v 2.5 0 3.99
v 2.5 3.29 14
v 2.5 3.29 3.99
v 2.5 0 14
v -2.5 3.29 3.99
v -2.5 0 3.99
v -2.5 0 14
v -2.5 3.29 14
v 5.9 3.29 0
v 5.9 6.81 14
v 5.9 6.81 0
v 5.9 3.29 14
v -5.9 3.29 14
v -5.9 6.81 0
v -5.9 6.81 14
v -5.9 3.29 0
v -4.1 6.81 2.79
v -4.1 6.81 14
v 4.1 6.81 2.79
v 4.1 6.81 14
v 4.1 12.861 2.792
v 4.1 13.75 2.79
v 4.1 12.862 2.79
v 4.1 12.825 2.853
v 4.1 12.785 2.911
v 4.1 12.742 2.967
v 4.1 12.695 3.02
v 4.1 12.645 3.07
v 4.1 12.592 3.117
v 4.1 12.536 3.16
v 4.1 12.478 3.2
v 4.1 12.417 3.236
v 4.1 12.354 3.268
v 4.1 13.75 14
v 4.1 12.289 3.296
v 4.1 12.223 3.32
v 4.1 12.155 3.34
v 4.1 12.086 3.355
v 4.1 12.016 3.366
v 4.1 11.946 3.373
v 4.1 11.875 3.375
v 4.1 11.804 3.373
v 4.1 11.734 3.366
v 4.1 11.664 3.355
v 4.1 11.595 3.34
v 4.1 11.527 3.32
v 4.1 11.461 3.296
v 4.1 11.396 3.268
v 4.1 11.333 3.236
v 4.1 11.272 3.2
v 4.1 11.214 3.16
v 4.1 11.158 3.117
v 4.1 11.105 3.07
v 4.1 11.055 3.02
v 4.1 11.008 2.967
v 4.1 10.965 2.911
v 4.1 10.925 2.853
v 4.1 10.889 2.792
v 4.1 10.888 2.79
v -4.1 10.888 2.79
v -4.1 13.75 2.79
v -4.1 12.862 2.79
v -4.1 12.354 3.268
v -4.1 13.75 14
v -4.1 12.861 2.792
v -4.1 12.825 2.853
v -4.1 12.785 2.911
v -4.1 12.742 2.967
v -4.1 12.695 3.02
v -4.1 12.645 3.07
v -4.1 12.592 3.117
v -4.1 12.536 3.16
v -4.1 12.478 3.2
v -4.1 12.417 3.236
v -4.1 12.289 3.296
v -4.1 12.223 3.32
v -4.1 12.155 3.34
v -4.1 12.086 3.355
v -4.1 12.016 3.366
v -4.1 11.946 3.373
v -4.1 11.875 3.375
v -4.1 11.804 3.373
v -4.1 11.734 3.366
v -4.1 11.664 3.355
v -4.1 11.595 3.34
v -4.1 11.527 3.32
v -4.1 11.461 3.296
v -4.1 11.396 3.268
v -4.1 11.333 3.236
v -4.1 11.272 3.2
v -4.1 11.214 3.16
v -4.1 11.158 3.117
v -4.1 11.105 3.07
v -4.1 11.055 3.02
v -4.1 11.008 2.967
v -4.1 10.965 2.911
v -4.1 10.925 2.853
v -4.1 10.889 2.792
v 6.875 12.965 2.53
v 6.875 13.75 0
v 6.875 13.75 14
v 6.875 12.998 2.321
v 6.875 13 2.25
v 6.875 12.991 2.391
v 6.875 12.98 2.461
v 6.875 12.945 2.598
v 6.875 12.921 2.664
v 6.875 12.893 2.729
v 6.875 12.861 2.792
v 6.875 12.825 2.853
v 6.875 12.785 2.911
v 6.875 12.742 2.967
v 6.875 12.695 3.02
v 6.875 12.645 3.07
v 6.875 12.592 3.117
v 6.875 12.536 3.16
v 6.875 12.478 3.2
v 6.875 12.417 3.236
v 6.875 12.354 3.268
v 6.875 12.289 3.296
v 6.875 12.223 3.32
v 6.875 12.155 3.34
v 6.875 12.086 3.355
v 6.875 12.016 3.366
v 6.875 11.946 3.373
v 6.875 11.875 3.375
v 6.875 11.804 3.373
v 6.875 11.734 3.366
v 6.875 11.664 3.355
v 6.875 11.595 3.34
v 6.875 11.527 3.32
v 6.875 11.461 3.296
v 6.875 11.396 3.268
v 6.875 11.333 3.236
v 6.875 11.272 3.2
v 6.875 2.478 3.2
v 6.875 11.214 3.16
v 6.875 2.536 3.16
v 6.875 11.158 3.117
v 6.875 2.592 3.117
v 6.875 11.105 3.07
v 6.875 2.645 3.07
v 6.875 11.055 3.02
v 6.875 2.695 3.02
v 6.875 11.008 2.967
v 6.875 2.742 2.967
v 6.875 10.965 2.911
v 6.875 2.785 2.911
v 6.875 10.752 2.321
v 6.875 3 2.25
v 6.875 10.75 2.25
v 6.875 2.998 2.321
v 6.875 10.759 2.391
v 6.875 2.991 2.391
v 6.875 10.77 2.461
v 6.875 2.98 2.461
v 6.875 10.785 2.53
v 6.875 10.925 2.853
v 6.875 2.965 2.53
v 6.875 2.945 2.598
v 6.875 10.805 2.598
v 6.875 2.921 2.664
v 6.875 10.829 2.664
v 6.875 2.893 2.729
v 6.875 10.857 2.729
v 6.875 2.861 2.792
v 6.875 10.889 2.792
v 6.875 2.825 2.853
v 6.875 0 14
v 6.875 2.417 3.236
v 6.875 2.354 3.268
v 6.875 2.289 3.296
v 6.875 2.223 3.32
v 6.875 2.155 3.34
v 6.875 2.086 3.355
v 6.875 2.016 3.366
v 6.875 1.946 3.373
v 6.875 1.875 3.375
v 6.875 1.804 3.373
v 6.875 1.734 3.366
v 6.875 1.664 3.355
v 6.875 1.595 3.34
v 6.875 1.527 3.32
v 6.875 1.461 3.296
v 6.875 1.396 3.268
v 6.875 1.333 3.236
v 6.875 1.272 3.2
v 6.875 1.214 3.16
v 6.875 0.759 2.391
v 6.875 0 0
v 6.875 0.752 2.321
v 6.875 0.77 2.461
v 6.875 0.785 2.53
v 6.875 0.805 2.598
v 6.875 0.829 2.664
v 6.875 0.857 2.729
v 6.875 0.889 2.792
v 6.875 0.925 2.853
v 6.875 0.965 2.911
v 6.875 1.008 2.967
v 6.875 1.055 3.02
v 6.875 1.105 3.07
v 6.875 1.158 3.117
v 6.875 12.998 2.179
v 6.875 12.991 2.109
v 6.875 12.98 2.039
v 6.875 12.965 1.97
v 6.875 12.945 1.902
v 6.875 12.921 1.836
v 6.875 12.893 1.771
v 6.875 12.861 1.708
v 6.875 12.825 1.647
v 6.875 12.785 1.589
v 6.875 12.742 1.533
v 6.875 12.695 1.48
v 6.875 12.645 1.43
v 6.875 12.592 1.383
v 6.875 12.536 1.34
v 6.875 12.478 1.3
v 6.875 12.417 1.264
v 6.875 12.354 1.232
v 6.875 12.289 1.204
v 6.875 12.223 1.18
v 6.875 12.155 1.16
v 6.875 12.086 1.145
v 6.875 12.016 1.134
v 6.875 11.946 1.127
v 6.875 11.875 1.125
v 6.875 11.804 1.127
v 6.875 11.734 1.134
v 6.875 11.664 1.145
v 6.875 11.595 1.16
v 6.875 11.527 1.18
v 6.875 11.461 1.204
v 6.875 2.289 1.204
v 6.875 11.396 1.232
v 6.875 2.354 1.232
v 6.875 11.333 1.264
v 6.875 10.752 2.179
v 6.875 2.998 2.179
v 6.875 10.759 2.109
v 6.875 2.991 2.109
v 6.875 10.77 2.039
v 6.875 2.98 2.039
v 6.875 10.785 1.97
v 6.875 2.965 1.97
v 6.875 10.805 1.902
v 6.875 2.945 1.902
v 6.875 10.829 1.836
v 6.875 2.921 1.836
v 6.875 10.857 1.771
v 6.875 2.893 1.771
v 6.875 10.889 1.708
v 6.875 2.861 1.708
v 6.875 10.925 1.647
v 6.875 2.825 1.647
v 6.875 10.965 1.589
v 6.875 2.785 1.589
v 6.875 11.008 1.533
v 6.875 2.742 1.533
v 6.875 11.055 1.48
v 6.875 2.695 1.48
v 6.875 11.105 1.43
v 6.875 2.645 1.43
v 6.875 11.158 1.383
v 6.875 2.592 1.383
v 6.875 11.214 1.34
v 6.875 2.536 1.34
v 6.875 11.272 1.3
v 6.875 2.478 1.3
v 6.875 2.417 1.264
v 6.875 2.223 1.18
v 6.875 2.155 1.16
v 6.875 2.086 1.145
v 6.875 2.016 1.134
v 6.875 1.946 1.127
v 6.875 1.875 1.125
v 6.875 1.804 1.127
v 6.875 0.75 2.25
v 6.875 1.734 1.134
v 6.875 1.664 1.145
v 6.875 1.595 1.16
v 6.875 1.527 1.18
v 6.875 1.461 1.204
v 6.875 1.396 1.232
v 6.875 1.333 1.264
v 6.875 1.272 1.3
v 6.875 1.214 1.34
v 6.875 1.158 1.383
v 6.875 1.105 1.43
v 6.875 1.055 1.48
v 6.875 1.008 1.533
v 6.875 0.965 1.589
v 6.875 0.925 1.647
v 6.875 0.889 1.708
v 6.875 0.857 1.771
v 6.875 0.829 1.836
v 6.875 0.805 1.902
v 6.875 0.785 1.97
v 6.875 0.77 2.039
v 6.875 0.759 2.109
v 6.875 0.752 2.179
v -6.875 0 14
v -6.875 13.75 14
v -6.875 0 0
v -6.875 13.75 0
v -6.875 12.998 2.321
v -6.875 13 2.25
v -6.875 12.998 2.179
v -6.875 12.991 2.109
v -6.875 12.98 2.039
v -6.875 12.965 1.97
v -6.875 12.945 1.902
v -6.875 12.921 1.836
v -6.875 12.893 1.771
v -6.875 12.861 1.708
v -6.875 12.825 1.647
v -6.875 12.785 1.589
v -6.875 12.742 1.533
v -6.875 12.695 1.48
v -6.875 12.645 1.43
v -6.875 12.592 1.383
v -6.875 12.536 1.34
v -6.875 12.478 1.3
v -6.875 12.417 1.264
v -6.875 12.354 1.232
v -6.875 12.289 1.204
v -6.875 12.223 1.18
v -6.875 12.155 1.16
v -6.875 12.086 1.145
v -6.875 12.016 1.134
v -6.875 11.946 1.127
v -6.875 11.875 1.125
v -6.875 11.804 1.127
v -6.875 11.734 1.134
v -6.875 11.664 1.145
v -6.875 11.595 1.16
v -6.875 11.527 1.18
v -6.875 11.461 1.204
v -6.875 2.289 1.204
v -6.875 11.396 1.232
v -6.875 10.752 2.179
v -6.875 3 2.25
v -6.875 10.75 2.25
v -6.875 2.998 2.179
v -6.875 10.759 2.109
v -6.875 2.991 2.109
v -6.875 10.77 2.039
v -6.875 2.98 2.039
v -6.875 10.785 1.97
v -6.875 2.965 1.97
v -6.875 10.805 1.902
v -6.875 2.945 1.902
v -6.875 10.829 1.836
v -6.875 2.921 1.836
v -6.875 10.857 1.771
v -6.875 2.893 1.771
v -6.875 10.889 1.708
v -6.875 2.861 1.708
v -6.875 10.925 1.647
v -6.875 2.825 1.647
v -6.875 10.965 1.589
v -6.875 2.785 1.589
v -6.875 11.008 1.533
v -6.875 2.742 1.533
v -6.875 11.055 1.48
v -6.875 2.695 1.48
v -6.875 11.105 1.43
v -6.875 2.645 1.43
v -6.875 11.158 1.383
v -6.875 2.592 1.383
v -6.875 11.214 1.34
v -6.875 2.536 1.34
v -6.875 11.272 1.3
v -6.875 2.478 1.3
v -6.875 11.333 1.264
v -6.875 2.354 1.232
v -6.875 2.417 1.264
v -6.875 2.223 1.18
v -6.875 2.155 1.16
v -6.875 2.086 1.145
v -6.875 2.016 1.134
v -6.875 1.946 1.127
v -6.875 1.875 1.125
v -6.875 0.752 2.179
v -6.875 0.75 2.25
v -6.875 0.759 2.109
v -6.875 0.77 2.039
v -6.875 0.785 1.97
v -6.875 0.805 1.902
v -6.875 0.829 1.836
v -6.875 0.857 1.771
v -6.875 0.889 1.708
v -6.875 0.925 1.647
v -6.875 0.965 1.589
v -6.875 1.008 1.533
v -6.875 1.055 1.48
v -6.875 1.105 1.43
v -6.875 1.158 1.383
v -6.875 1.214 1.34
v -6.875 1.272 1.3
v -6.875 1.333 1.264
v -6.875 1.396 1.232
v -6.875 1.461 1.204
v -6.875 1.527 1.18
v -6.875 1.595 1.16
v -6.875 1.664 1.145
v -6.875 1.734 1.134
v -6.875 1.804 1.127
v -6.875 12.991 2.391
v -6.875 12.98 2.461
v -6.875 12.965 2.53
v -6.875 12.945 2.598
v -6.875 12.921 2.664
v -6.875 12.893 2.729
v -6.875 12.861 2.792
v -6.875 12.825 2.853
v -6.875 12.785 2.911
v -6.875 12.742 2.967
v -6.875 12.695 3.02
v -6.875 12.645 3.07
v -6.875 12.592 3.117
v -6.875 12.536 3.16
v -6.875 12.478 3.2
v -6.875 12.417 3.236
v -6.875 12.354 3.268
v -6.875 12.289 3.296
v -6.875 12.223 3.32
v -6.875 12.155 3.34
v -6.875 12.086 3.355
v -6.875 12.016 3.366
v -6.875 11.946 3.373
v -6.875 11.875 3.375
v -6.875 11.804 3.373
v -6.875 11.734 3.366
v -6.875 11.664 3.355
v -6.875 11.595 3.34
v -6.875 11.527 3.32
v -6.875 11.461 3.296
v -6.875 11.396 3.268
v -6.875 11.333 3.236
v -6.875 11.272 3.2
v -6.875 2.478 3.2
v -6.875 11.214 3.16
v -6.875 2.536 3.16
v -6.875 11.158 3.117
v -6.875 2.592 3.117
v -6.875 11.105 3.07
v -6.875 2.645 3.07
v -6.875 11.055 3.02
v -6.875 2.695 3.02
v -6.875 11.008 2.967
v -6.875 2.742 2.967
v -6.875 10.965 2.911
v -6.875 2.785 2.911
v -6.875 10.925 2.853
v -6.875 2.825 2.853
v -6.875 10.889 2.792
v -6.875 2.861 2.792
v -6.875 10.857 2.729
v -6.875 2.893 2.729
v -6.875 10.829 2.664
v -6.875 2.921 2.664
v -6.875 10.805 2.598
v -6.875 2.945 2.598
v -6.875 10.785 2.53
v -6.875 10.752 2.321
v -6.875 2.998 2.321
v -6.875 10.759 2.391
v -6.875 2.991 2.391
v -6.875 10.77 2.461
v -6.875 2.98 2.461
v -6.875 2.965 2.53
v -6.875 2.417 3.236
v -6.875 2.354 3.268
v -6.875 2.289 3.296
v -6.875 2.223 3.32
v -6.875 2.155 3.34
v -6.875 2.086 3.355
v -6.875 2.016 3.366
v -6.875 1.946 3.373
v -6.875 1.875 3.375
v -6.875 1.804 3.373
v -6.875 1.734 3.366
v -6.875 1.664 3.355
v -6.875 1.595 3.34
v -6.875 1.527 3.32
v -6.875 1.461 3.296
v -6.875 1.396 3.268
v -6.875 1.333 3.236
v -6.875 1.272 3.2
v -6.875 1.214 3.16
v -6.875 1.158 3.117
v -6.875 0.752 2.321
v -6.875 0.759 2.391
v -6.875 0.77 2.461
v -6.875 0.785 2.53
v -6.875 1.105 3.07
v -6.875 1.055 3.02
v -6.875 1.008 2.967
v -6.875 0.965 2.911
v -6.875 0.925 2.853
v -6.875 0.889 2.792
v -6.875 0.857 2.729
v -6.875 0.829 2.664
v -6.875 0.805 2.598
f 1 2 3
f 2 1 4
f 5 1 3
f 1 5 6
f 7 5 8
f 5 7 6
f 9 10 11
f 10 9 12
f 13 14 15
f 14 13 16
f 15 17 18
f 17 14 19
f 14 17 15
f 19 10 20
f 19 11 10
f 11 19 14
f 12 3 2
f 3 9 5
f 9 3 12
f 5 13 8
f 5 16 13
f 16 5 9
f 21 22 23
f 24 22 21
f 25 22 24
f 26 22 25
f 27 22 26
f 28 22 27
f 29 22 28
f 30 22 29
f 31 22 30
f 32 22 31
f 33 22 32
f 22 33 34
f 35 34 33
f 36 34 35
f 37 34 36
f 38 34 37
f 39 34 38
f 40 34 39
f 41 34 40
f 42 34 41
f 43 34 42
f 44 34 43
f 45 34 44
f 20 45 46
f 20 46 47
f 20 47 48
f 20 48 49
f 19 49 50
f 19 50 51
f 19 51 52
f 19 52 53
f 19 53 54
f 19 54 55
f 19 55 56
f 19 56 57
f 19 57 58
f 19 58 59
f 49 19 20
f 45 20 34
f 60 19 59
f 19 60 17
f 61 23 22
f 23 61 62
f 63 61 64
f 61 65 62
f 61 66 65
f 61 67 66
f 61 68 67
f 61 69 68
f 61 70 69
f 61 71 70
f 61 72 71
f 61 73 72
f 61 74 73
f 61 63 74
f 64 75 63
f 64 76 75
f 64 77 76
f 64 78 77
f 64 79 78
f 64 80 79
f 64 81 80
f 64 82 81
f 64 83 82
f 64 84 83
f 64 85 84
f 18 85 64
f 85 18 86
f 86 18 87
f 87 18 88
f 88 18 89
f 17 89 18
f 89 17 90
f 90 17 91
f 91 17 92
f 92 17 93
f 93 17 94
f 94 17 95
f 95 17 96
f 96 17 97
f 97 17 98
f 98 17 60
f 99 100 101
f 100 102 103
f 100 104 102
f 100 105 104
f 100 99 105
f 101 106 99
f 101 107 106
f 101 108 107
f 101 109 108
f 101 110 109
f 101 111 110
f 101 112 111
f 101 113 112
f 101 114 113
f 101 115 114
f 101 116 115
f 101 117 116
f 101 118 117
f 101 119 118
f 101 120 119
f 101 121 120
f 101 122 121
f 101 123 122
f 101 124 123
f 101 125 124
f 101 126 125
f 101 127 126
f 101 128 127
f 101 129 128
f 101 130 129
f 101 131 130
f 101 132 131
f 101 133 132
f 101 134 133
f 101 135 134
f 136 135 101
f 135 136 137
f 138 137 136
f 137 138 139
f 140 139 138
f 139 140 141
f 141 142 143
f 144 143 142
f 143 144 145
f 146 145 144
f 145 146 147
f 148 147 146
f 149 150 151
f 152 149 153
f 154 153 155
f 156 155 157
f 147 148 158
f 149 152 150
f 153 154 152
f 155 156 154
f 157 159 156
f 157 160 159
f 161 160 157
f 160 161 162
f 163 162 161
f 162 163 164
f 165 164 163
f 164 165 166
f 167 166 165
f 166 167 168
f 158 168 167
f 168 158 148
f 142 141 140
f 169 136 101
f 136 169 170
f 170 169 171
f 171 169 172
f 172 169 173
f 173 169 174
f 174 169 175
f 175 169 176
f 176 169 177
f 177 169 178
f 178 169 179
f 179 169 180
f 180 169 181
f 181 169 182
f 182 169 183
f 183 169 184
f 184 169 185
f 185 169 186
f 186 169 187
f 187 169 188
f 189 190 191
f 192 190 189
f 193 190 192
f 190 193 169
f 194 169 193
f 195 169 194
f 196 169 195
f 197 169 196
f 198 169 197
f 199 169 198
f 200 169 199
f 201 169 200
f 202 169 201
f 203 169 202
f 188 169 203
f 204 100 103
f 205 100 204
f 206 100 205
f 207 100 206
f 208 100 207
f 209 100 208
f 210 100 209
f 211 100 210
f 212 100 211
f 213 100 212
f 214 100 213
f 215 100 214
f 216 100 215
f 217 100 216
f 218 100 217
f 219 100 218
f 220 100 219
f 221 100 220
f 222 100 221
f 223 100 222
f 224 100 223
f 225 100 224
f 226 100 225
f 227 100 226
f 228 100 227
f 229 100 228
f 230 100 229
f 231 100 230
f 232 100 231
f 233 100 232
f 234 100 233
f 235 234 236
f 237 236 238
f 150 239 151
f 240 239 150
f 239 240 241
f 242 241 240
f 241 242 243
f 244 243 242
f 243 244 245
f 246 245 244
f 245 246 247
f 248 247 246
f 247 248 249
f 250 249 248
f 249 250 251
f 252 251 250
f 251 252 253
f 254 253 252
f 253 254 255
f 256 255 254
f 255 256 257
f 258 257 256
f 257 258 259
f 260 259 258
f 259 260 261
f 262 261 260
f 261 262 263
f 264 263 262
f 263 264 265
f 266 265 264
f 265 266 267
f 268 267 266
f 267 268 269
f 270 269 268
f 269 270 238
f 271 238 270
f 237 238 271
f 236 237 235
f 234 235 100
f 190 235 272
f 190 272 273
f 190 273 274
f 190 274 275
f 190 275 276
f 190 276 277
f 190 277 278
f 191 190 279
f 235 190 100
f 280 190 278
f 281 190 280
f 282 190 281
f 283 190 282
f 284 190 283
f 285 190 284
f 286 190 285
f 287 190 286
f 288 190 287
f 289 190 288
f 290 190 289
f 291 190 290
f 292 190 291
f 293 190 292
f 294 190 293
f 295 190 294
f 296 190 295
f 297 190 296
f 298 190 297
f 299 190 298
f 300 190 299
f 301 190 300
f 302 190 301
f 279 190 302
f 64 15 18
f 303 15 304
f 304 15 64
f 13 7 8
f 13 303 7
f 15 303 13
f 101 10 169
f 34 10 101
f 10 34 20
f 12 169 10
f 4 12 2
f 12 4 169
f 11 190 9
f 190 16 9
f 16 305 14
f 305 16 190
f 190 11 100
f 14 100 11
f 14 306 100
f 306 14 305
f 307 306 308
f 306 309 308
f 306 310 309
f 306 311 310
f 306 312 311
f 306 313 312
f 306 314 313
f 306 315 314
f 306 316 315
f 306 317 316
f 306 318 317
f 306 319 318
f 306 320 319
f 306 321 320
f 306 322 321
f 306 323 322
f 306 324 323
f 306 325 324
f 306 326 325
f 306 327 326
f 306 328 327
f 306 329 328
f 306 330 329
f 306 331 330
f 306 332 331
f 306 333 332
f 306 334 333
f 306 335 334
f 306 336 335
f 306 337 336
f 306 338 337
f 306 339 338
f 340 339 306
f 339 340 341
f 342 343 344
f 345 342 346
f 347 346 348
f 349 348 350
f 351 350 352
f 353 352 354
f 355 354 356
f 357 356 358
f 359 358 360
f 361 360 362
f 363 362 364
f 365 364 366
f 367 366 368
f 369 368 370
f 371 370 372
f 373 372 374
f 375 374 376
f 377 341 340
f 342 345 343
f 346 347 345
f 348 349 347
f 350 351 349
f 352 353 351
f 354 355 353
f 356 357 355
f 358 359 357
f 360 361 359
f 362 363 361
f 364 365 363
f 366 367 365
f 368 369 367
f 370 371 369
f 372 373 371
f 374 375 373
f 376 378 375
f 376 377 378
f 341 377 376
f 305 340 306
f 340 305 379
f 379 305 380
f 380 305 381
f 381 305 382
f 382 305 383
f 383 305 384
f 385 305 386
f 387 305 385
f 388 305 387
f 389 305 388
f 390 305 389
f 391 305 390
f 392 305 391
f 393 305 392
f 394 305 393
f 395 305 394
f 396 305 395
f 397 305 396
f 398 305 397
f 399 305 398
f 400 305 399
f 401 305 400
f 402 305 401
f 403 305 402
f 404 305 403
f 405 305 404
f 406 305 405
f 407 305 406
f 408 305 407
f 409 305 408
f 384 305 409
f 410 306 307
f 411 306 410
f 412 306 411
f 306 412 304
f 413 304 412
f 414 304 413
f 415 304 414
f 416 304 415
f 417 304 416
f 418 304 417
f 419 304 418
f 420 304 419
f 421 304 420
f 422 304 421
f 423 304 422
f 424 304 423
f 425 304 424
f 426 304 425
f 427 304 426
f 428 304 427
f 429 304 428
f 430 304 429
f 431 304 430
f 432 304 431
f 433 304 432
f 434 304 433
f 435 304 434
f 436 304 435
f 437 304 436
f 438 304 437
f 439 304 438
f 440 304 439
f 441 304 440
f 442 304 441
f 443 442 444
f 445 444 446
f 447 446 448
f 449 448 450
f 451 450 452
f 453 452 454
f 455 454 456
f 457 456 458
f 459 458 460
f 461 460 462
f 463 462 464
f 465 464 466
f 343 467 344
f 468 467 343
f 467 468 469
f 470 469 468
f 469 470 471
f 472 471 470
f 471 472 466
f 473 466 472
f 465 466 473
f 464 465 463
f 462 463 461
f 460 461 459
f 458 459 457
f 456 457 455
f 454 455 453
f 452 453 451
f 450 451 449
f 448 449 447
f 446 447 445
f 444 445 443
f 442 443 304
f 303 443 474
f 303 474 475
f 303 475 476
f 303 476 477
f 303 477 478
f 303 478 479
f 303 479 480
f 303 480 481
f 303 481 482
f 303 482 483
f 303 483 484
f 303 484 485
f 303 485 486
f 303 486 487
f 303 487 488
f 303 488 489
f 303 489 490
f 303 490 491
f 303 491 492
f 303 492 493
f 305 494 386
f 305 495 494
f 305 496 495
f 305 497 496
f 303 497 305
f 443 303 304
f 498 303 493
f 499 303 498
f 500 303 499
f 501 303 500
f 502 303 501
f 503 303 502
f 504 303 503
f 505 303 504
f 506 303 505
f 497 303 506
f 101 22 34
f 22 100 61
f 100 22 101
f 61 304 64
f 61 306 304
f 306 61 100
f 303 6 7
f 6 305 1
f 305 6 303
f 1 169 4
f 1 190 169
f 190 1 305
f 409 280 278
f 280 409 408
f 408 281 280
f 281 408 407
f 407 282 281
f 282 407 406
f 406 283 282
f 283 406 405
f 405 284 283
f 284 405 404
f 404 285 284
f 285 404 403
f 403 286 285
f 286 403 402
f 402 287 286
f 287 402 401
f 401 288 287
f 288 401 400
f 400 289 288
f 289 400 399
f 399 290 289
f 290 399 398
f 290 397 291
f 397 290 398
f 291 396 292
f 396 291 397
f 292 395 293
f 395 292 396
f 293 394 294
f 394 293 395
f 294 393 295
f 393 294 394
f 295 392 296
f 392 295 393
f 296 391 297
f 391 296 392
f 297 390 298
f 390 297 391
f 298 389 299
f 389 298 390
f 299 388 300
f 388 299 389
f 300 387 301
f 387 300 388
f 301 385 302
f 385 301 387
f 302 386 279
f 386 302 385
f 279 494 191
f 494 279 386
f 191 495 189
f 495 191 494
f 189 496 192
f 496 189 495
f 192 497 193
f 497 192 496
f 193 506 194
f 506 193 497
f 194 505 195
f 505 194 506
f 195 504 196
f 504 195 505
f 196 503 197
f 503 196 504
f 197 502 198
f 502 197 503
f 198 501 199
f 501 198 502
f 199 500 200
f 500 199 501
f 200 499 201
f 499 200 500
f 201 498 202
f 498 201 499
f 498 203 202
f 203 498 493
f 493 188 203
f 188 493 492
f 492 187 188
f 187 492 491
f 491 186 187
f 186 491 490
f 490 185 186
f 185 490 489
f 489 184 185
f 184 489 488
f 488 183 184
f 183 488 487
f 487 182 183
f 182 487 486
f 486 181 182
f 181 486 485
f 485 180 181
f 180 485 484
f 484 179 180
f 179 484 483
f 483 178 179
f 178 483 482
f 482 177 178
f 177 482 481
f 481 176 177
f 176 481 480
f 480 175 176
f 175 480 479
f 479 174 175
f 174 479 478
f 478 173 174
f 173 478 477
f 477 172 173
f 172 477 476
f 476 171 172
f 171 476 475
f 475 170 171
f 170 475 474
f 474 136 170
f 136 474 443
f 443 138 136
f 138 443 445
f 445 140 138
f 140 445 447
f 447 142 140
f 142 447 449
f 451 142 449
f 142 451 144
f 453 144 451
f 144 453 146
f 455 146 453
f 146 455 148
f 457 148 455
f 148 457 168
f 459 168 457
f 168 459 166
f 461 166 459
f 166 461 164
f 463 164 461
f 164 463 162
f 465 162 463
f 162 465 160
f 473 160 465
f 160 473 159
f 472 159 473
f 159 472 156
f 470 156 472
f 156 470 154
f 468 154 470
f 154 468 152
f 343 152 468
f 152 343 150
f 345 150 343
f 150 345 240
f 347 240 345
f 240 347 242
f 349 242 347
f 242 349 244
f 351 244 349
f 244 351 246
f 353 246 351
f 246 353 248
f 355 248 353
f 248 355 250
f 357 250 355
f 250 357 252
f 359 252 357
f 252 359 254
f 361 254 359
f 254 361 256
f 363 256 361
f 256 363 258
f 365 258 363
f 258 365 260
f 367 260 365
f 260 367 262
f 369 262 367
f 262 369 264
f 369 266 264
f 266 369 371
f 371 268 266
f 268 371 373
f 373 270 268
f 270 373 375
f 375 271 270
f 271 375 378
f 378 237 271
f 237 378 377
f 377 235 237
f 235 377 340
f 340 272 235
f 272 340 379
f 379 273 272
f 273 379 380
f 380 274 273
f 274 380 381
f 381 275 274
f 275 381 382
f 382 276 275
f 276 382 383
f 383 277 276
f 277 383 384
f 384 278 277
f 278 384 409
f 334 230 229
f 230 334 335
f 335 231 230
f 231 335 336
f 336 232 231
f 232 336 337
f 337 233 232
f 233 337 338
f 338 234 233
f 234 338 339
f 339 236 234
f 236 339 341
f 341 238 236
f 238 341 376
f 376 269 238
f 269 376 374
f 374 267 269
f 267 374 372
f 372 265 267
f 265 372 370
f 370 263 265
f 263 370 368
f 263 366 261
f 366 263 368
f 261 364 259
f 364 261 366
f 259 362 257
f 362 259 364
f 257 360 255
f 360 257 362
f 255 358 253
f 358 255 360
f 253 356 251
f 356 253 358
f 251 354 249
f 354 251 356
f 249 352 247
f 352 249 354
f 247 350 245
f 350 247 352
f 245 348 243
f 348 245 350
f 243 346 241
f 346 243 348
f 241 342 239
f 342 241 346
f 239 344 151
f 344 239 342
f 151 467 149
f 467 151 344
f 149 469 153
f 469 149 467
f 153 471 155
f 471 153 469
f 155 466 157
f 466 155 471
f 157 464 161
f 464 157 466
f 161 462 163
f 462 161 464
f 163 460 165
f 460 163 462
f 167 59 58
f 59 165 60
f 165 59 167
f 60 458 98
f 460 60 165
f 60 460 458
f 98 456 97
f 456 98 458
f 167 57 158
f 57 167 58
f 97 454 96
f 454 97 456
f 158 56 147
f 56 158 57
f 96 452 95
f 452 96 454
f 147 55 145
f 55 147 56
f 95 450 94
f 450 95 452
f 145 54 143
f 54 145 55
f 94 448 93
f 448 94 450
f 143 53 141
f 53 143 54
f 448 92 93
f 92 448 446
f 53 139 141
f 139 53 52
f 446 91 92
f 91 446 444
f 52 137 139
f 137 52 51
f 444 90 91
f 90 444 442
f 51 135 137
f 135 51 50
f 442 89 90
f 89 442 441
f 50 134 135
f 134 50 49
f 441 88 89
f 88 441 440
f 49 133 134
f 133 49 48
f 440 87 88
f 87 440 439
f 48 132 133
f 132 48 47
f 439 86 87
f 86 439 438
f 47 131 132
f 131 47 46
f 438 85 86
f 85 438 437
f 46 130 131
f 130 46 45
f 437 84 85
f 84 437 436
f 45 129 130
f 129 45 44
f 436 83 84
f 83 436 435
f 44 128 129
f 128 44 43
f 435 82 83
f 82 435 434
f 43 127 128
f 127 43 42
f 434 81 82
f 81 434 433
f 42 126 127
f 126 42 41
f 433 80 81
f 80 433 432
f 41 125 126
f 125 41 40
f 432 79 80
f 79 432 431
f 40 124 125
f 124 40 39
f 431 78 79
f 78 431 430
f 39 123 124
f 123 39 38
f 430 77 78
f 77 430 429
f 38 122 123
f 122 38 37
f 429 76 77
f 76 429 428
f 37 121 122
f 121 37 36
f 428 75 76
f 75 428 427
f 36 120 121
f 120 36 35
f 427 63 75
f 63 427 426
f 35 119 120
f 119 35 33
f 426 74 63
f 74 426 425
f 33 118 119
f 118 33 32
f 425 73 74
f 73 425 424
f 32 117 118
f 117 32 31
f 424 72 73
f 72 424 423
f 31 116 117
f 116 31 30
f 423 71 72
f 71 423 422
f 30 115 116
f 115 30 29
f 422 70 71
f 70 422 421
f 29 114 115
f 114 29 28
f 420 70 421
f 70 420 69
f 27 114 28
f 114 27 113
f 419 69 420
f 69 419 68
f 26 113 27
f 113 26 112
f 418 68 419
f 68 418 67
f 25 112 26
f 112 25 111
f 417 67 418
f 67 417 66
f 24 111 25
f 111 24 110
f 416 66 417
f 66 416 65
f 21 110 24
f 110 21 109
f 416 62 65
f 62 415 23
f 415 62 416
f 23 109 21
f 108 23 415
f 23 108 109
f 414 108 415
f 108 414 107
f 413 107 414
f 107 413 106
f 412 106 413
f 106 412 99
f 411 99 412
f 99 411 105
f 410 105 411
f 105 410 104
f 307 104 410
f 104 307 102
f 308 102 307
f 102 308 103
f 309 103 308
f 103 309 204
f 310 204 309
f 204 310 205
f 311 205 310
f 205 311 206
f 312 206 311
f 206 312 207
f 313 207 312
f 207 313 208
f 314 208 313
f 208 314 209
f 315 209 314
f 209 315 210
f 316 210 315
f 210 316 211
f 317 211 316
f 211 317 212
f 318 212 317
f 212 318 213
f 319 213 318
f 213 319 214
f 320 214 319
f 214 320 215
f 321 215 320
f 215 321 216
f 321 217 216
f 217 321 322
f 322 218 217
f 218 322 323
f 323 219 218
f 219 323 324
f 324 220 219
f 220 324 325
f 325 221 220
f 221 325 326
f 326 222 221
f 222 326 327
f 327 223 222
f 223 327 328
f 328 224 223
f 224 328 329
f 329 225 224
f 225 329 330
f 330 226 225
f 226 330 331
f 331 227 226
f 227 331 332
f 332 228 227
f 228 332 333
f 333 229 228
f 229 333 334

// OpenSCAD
/********************************************************
 * BETAFPV C03 Camera Harness - vsergeev
 * https://github.com/vsergeev/3d-parametric-whoop
 * CC-BY-4.0
 * v1.0
 ********************************************************/

camera_xyz_segments = [[5, 3.3, 4], [11.8, 3.5, 0], [8.2, 6.95, 2.8]];

harness_x_width = 13.75;
harness_y_length = camera_xyz_segments[0].y + camera_xyz_segments[1].y + camera_xyz_segments[2].y;
harness_z_height = 14;
mount_hole_xy_diameter = 2.25;
mount_hole_y_pitch = 10;

/* [Hidden] */

overlap_epsilon = 0.01;

$fn = 100;

/******************************************************************************/
/* 2D Profiles */
/******************************************************************************/

module mounting_hole_yz_footprint() {
    mount_hole_y_offset = (harness_y_length - mount_hole_y_pitch) / 2;

    union() {
        translate([-mount_hole_y_offset, mount_hole_xy_diameter])
            circle(d=mount_hole_xy_diameter);

        translate([-mount_hole_y_offset - mount_hole_y_pitch, mount_hole_xy_diameter])
            circle(d=mount_hole_xy_diameter);
    }
}

/******************************************************************************/
/* 3D Extrusions */
/******************************************************************************/

module camera_slot() {
    segment_offsets = [ for (i = 0, o = 0; i < len(camera_xyz_segments); i = i + 1,  o = o + camera_xyz_segments[i - 1].y) o];

    union() {
        for (i = [0:len(camera_xyz_segments) - 1]) {
            translate([-camera_xyz_segments[i].x / 2, segment_offsets[i] - overlap_epsilon, camera_xyz_segments[i].z - overlap_epsilon])
                 cube([camera_xyz_segments[i].x, camera_xyz_segments[i].y + 2 * overlap_epsilon, harness_z_height - camera_xyz_segments[i].z + 2 * overlap_epsilon]);
        }
    }
}

module harness() {
    difference() {
        /* Base */
        translate([0, harness_y_length / 2, harness_z_height / 2])
            cube([harness_x_width, harness_y_length, harness_z_height], center=true);

        /* Camera Slot */
        camera_slot();

        /* Mounting Holes */
        rotate([90, 0, -90])
            translate([0, 0, -harness_x_width])
                linear_extrude(harness_x_width * 2, convexity=2)
                    mounting_hole_yz_footprint();
    }
}

/******************************************************************************/
/* Top Level */
/******************************************************************************/

harness();
